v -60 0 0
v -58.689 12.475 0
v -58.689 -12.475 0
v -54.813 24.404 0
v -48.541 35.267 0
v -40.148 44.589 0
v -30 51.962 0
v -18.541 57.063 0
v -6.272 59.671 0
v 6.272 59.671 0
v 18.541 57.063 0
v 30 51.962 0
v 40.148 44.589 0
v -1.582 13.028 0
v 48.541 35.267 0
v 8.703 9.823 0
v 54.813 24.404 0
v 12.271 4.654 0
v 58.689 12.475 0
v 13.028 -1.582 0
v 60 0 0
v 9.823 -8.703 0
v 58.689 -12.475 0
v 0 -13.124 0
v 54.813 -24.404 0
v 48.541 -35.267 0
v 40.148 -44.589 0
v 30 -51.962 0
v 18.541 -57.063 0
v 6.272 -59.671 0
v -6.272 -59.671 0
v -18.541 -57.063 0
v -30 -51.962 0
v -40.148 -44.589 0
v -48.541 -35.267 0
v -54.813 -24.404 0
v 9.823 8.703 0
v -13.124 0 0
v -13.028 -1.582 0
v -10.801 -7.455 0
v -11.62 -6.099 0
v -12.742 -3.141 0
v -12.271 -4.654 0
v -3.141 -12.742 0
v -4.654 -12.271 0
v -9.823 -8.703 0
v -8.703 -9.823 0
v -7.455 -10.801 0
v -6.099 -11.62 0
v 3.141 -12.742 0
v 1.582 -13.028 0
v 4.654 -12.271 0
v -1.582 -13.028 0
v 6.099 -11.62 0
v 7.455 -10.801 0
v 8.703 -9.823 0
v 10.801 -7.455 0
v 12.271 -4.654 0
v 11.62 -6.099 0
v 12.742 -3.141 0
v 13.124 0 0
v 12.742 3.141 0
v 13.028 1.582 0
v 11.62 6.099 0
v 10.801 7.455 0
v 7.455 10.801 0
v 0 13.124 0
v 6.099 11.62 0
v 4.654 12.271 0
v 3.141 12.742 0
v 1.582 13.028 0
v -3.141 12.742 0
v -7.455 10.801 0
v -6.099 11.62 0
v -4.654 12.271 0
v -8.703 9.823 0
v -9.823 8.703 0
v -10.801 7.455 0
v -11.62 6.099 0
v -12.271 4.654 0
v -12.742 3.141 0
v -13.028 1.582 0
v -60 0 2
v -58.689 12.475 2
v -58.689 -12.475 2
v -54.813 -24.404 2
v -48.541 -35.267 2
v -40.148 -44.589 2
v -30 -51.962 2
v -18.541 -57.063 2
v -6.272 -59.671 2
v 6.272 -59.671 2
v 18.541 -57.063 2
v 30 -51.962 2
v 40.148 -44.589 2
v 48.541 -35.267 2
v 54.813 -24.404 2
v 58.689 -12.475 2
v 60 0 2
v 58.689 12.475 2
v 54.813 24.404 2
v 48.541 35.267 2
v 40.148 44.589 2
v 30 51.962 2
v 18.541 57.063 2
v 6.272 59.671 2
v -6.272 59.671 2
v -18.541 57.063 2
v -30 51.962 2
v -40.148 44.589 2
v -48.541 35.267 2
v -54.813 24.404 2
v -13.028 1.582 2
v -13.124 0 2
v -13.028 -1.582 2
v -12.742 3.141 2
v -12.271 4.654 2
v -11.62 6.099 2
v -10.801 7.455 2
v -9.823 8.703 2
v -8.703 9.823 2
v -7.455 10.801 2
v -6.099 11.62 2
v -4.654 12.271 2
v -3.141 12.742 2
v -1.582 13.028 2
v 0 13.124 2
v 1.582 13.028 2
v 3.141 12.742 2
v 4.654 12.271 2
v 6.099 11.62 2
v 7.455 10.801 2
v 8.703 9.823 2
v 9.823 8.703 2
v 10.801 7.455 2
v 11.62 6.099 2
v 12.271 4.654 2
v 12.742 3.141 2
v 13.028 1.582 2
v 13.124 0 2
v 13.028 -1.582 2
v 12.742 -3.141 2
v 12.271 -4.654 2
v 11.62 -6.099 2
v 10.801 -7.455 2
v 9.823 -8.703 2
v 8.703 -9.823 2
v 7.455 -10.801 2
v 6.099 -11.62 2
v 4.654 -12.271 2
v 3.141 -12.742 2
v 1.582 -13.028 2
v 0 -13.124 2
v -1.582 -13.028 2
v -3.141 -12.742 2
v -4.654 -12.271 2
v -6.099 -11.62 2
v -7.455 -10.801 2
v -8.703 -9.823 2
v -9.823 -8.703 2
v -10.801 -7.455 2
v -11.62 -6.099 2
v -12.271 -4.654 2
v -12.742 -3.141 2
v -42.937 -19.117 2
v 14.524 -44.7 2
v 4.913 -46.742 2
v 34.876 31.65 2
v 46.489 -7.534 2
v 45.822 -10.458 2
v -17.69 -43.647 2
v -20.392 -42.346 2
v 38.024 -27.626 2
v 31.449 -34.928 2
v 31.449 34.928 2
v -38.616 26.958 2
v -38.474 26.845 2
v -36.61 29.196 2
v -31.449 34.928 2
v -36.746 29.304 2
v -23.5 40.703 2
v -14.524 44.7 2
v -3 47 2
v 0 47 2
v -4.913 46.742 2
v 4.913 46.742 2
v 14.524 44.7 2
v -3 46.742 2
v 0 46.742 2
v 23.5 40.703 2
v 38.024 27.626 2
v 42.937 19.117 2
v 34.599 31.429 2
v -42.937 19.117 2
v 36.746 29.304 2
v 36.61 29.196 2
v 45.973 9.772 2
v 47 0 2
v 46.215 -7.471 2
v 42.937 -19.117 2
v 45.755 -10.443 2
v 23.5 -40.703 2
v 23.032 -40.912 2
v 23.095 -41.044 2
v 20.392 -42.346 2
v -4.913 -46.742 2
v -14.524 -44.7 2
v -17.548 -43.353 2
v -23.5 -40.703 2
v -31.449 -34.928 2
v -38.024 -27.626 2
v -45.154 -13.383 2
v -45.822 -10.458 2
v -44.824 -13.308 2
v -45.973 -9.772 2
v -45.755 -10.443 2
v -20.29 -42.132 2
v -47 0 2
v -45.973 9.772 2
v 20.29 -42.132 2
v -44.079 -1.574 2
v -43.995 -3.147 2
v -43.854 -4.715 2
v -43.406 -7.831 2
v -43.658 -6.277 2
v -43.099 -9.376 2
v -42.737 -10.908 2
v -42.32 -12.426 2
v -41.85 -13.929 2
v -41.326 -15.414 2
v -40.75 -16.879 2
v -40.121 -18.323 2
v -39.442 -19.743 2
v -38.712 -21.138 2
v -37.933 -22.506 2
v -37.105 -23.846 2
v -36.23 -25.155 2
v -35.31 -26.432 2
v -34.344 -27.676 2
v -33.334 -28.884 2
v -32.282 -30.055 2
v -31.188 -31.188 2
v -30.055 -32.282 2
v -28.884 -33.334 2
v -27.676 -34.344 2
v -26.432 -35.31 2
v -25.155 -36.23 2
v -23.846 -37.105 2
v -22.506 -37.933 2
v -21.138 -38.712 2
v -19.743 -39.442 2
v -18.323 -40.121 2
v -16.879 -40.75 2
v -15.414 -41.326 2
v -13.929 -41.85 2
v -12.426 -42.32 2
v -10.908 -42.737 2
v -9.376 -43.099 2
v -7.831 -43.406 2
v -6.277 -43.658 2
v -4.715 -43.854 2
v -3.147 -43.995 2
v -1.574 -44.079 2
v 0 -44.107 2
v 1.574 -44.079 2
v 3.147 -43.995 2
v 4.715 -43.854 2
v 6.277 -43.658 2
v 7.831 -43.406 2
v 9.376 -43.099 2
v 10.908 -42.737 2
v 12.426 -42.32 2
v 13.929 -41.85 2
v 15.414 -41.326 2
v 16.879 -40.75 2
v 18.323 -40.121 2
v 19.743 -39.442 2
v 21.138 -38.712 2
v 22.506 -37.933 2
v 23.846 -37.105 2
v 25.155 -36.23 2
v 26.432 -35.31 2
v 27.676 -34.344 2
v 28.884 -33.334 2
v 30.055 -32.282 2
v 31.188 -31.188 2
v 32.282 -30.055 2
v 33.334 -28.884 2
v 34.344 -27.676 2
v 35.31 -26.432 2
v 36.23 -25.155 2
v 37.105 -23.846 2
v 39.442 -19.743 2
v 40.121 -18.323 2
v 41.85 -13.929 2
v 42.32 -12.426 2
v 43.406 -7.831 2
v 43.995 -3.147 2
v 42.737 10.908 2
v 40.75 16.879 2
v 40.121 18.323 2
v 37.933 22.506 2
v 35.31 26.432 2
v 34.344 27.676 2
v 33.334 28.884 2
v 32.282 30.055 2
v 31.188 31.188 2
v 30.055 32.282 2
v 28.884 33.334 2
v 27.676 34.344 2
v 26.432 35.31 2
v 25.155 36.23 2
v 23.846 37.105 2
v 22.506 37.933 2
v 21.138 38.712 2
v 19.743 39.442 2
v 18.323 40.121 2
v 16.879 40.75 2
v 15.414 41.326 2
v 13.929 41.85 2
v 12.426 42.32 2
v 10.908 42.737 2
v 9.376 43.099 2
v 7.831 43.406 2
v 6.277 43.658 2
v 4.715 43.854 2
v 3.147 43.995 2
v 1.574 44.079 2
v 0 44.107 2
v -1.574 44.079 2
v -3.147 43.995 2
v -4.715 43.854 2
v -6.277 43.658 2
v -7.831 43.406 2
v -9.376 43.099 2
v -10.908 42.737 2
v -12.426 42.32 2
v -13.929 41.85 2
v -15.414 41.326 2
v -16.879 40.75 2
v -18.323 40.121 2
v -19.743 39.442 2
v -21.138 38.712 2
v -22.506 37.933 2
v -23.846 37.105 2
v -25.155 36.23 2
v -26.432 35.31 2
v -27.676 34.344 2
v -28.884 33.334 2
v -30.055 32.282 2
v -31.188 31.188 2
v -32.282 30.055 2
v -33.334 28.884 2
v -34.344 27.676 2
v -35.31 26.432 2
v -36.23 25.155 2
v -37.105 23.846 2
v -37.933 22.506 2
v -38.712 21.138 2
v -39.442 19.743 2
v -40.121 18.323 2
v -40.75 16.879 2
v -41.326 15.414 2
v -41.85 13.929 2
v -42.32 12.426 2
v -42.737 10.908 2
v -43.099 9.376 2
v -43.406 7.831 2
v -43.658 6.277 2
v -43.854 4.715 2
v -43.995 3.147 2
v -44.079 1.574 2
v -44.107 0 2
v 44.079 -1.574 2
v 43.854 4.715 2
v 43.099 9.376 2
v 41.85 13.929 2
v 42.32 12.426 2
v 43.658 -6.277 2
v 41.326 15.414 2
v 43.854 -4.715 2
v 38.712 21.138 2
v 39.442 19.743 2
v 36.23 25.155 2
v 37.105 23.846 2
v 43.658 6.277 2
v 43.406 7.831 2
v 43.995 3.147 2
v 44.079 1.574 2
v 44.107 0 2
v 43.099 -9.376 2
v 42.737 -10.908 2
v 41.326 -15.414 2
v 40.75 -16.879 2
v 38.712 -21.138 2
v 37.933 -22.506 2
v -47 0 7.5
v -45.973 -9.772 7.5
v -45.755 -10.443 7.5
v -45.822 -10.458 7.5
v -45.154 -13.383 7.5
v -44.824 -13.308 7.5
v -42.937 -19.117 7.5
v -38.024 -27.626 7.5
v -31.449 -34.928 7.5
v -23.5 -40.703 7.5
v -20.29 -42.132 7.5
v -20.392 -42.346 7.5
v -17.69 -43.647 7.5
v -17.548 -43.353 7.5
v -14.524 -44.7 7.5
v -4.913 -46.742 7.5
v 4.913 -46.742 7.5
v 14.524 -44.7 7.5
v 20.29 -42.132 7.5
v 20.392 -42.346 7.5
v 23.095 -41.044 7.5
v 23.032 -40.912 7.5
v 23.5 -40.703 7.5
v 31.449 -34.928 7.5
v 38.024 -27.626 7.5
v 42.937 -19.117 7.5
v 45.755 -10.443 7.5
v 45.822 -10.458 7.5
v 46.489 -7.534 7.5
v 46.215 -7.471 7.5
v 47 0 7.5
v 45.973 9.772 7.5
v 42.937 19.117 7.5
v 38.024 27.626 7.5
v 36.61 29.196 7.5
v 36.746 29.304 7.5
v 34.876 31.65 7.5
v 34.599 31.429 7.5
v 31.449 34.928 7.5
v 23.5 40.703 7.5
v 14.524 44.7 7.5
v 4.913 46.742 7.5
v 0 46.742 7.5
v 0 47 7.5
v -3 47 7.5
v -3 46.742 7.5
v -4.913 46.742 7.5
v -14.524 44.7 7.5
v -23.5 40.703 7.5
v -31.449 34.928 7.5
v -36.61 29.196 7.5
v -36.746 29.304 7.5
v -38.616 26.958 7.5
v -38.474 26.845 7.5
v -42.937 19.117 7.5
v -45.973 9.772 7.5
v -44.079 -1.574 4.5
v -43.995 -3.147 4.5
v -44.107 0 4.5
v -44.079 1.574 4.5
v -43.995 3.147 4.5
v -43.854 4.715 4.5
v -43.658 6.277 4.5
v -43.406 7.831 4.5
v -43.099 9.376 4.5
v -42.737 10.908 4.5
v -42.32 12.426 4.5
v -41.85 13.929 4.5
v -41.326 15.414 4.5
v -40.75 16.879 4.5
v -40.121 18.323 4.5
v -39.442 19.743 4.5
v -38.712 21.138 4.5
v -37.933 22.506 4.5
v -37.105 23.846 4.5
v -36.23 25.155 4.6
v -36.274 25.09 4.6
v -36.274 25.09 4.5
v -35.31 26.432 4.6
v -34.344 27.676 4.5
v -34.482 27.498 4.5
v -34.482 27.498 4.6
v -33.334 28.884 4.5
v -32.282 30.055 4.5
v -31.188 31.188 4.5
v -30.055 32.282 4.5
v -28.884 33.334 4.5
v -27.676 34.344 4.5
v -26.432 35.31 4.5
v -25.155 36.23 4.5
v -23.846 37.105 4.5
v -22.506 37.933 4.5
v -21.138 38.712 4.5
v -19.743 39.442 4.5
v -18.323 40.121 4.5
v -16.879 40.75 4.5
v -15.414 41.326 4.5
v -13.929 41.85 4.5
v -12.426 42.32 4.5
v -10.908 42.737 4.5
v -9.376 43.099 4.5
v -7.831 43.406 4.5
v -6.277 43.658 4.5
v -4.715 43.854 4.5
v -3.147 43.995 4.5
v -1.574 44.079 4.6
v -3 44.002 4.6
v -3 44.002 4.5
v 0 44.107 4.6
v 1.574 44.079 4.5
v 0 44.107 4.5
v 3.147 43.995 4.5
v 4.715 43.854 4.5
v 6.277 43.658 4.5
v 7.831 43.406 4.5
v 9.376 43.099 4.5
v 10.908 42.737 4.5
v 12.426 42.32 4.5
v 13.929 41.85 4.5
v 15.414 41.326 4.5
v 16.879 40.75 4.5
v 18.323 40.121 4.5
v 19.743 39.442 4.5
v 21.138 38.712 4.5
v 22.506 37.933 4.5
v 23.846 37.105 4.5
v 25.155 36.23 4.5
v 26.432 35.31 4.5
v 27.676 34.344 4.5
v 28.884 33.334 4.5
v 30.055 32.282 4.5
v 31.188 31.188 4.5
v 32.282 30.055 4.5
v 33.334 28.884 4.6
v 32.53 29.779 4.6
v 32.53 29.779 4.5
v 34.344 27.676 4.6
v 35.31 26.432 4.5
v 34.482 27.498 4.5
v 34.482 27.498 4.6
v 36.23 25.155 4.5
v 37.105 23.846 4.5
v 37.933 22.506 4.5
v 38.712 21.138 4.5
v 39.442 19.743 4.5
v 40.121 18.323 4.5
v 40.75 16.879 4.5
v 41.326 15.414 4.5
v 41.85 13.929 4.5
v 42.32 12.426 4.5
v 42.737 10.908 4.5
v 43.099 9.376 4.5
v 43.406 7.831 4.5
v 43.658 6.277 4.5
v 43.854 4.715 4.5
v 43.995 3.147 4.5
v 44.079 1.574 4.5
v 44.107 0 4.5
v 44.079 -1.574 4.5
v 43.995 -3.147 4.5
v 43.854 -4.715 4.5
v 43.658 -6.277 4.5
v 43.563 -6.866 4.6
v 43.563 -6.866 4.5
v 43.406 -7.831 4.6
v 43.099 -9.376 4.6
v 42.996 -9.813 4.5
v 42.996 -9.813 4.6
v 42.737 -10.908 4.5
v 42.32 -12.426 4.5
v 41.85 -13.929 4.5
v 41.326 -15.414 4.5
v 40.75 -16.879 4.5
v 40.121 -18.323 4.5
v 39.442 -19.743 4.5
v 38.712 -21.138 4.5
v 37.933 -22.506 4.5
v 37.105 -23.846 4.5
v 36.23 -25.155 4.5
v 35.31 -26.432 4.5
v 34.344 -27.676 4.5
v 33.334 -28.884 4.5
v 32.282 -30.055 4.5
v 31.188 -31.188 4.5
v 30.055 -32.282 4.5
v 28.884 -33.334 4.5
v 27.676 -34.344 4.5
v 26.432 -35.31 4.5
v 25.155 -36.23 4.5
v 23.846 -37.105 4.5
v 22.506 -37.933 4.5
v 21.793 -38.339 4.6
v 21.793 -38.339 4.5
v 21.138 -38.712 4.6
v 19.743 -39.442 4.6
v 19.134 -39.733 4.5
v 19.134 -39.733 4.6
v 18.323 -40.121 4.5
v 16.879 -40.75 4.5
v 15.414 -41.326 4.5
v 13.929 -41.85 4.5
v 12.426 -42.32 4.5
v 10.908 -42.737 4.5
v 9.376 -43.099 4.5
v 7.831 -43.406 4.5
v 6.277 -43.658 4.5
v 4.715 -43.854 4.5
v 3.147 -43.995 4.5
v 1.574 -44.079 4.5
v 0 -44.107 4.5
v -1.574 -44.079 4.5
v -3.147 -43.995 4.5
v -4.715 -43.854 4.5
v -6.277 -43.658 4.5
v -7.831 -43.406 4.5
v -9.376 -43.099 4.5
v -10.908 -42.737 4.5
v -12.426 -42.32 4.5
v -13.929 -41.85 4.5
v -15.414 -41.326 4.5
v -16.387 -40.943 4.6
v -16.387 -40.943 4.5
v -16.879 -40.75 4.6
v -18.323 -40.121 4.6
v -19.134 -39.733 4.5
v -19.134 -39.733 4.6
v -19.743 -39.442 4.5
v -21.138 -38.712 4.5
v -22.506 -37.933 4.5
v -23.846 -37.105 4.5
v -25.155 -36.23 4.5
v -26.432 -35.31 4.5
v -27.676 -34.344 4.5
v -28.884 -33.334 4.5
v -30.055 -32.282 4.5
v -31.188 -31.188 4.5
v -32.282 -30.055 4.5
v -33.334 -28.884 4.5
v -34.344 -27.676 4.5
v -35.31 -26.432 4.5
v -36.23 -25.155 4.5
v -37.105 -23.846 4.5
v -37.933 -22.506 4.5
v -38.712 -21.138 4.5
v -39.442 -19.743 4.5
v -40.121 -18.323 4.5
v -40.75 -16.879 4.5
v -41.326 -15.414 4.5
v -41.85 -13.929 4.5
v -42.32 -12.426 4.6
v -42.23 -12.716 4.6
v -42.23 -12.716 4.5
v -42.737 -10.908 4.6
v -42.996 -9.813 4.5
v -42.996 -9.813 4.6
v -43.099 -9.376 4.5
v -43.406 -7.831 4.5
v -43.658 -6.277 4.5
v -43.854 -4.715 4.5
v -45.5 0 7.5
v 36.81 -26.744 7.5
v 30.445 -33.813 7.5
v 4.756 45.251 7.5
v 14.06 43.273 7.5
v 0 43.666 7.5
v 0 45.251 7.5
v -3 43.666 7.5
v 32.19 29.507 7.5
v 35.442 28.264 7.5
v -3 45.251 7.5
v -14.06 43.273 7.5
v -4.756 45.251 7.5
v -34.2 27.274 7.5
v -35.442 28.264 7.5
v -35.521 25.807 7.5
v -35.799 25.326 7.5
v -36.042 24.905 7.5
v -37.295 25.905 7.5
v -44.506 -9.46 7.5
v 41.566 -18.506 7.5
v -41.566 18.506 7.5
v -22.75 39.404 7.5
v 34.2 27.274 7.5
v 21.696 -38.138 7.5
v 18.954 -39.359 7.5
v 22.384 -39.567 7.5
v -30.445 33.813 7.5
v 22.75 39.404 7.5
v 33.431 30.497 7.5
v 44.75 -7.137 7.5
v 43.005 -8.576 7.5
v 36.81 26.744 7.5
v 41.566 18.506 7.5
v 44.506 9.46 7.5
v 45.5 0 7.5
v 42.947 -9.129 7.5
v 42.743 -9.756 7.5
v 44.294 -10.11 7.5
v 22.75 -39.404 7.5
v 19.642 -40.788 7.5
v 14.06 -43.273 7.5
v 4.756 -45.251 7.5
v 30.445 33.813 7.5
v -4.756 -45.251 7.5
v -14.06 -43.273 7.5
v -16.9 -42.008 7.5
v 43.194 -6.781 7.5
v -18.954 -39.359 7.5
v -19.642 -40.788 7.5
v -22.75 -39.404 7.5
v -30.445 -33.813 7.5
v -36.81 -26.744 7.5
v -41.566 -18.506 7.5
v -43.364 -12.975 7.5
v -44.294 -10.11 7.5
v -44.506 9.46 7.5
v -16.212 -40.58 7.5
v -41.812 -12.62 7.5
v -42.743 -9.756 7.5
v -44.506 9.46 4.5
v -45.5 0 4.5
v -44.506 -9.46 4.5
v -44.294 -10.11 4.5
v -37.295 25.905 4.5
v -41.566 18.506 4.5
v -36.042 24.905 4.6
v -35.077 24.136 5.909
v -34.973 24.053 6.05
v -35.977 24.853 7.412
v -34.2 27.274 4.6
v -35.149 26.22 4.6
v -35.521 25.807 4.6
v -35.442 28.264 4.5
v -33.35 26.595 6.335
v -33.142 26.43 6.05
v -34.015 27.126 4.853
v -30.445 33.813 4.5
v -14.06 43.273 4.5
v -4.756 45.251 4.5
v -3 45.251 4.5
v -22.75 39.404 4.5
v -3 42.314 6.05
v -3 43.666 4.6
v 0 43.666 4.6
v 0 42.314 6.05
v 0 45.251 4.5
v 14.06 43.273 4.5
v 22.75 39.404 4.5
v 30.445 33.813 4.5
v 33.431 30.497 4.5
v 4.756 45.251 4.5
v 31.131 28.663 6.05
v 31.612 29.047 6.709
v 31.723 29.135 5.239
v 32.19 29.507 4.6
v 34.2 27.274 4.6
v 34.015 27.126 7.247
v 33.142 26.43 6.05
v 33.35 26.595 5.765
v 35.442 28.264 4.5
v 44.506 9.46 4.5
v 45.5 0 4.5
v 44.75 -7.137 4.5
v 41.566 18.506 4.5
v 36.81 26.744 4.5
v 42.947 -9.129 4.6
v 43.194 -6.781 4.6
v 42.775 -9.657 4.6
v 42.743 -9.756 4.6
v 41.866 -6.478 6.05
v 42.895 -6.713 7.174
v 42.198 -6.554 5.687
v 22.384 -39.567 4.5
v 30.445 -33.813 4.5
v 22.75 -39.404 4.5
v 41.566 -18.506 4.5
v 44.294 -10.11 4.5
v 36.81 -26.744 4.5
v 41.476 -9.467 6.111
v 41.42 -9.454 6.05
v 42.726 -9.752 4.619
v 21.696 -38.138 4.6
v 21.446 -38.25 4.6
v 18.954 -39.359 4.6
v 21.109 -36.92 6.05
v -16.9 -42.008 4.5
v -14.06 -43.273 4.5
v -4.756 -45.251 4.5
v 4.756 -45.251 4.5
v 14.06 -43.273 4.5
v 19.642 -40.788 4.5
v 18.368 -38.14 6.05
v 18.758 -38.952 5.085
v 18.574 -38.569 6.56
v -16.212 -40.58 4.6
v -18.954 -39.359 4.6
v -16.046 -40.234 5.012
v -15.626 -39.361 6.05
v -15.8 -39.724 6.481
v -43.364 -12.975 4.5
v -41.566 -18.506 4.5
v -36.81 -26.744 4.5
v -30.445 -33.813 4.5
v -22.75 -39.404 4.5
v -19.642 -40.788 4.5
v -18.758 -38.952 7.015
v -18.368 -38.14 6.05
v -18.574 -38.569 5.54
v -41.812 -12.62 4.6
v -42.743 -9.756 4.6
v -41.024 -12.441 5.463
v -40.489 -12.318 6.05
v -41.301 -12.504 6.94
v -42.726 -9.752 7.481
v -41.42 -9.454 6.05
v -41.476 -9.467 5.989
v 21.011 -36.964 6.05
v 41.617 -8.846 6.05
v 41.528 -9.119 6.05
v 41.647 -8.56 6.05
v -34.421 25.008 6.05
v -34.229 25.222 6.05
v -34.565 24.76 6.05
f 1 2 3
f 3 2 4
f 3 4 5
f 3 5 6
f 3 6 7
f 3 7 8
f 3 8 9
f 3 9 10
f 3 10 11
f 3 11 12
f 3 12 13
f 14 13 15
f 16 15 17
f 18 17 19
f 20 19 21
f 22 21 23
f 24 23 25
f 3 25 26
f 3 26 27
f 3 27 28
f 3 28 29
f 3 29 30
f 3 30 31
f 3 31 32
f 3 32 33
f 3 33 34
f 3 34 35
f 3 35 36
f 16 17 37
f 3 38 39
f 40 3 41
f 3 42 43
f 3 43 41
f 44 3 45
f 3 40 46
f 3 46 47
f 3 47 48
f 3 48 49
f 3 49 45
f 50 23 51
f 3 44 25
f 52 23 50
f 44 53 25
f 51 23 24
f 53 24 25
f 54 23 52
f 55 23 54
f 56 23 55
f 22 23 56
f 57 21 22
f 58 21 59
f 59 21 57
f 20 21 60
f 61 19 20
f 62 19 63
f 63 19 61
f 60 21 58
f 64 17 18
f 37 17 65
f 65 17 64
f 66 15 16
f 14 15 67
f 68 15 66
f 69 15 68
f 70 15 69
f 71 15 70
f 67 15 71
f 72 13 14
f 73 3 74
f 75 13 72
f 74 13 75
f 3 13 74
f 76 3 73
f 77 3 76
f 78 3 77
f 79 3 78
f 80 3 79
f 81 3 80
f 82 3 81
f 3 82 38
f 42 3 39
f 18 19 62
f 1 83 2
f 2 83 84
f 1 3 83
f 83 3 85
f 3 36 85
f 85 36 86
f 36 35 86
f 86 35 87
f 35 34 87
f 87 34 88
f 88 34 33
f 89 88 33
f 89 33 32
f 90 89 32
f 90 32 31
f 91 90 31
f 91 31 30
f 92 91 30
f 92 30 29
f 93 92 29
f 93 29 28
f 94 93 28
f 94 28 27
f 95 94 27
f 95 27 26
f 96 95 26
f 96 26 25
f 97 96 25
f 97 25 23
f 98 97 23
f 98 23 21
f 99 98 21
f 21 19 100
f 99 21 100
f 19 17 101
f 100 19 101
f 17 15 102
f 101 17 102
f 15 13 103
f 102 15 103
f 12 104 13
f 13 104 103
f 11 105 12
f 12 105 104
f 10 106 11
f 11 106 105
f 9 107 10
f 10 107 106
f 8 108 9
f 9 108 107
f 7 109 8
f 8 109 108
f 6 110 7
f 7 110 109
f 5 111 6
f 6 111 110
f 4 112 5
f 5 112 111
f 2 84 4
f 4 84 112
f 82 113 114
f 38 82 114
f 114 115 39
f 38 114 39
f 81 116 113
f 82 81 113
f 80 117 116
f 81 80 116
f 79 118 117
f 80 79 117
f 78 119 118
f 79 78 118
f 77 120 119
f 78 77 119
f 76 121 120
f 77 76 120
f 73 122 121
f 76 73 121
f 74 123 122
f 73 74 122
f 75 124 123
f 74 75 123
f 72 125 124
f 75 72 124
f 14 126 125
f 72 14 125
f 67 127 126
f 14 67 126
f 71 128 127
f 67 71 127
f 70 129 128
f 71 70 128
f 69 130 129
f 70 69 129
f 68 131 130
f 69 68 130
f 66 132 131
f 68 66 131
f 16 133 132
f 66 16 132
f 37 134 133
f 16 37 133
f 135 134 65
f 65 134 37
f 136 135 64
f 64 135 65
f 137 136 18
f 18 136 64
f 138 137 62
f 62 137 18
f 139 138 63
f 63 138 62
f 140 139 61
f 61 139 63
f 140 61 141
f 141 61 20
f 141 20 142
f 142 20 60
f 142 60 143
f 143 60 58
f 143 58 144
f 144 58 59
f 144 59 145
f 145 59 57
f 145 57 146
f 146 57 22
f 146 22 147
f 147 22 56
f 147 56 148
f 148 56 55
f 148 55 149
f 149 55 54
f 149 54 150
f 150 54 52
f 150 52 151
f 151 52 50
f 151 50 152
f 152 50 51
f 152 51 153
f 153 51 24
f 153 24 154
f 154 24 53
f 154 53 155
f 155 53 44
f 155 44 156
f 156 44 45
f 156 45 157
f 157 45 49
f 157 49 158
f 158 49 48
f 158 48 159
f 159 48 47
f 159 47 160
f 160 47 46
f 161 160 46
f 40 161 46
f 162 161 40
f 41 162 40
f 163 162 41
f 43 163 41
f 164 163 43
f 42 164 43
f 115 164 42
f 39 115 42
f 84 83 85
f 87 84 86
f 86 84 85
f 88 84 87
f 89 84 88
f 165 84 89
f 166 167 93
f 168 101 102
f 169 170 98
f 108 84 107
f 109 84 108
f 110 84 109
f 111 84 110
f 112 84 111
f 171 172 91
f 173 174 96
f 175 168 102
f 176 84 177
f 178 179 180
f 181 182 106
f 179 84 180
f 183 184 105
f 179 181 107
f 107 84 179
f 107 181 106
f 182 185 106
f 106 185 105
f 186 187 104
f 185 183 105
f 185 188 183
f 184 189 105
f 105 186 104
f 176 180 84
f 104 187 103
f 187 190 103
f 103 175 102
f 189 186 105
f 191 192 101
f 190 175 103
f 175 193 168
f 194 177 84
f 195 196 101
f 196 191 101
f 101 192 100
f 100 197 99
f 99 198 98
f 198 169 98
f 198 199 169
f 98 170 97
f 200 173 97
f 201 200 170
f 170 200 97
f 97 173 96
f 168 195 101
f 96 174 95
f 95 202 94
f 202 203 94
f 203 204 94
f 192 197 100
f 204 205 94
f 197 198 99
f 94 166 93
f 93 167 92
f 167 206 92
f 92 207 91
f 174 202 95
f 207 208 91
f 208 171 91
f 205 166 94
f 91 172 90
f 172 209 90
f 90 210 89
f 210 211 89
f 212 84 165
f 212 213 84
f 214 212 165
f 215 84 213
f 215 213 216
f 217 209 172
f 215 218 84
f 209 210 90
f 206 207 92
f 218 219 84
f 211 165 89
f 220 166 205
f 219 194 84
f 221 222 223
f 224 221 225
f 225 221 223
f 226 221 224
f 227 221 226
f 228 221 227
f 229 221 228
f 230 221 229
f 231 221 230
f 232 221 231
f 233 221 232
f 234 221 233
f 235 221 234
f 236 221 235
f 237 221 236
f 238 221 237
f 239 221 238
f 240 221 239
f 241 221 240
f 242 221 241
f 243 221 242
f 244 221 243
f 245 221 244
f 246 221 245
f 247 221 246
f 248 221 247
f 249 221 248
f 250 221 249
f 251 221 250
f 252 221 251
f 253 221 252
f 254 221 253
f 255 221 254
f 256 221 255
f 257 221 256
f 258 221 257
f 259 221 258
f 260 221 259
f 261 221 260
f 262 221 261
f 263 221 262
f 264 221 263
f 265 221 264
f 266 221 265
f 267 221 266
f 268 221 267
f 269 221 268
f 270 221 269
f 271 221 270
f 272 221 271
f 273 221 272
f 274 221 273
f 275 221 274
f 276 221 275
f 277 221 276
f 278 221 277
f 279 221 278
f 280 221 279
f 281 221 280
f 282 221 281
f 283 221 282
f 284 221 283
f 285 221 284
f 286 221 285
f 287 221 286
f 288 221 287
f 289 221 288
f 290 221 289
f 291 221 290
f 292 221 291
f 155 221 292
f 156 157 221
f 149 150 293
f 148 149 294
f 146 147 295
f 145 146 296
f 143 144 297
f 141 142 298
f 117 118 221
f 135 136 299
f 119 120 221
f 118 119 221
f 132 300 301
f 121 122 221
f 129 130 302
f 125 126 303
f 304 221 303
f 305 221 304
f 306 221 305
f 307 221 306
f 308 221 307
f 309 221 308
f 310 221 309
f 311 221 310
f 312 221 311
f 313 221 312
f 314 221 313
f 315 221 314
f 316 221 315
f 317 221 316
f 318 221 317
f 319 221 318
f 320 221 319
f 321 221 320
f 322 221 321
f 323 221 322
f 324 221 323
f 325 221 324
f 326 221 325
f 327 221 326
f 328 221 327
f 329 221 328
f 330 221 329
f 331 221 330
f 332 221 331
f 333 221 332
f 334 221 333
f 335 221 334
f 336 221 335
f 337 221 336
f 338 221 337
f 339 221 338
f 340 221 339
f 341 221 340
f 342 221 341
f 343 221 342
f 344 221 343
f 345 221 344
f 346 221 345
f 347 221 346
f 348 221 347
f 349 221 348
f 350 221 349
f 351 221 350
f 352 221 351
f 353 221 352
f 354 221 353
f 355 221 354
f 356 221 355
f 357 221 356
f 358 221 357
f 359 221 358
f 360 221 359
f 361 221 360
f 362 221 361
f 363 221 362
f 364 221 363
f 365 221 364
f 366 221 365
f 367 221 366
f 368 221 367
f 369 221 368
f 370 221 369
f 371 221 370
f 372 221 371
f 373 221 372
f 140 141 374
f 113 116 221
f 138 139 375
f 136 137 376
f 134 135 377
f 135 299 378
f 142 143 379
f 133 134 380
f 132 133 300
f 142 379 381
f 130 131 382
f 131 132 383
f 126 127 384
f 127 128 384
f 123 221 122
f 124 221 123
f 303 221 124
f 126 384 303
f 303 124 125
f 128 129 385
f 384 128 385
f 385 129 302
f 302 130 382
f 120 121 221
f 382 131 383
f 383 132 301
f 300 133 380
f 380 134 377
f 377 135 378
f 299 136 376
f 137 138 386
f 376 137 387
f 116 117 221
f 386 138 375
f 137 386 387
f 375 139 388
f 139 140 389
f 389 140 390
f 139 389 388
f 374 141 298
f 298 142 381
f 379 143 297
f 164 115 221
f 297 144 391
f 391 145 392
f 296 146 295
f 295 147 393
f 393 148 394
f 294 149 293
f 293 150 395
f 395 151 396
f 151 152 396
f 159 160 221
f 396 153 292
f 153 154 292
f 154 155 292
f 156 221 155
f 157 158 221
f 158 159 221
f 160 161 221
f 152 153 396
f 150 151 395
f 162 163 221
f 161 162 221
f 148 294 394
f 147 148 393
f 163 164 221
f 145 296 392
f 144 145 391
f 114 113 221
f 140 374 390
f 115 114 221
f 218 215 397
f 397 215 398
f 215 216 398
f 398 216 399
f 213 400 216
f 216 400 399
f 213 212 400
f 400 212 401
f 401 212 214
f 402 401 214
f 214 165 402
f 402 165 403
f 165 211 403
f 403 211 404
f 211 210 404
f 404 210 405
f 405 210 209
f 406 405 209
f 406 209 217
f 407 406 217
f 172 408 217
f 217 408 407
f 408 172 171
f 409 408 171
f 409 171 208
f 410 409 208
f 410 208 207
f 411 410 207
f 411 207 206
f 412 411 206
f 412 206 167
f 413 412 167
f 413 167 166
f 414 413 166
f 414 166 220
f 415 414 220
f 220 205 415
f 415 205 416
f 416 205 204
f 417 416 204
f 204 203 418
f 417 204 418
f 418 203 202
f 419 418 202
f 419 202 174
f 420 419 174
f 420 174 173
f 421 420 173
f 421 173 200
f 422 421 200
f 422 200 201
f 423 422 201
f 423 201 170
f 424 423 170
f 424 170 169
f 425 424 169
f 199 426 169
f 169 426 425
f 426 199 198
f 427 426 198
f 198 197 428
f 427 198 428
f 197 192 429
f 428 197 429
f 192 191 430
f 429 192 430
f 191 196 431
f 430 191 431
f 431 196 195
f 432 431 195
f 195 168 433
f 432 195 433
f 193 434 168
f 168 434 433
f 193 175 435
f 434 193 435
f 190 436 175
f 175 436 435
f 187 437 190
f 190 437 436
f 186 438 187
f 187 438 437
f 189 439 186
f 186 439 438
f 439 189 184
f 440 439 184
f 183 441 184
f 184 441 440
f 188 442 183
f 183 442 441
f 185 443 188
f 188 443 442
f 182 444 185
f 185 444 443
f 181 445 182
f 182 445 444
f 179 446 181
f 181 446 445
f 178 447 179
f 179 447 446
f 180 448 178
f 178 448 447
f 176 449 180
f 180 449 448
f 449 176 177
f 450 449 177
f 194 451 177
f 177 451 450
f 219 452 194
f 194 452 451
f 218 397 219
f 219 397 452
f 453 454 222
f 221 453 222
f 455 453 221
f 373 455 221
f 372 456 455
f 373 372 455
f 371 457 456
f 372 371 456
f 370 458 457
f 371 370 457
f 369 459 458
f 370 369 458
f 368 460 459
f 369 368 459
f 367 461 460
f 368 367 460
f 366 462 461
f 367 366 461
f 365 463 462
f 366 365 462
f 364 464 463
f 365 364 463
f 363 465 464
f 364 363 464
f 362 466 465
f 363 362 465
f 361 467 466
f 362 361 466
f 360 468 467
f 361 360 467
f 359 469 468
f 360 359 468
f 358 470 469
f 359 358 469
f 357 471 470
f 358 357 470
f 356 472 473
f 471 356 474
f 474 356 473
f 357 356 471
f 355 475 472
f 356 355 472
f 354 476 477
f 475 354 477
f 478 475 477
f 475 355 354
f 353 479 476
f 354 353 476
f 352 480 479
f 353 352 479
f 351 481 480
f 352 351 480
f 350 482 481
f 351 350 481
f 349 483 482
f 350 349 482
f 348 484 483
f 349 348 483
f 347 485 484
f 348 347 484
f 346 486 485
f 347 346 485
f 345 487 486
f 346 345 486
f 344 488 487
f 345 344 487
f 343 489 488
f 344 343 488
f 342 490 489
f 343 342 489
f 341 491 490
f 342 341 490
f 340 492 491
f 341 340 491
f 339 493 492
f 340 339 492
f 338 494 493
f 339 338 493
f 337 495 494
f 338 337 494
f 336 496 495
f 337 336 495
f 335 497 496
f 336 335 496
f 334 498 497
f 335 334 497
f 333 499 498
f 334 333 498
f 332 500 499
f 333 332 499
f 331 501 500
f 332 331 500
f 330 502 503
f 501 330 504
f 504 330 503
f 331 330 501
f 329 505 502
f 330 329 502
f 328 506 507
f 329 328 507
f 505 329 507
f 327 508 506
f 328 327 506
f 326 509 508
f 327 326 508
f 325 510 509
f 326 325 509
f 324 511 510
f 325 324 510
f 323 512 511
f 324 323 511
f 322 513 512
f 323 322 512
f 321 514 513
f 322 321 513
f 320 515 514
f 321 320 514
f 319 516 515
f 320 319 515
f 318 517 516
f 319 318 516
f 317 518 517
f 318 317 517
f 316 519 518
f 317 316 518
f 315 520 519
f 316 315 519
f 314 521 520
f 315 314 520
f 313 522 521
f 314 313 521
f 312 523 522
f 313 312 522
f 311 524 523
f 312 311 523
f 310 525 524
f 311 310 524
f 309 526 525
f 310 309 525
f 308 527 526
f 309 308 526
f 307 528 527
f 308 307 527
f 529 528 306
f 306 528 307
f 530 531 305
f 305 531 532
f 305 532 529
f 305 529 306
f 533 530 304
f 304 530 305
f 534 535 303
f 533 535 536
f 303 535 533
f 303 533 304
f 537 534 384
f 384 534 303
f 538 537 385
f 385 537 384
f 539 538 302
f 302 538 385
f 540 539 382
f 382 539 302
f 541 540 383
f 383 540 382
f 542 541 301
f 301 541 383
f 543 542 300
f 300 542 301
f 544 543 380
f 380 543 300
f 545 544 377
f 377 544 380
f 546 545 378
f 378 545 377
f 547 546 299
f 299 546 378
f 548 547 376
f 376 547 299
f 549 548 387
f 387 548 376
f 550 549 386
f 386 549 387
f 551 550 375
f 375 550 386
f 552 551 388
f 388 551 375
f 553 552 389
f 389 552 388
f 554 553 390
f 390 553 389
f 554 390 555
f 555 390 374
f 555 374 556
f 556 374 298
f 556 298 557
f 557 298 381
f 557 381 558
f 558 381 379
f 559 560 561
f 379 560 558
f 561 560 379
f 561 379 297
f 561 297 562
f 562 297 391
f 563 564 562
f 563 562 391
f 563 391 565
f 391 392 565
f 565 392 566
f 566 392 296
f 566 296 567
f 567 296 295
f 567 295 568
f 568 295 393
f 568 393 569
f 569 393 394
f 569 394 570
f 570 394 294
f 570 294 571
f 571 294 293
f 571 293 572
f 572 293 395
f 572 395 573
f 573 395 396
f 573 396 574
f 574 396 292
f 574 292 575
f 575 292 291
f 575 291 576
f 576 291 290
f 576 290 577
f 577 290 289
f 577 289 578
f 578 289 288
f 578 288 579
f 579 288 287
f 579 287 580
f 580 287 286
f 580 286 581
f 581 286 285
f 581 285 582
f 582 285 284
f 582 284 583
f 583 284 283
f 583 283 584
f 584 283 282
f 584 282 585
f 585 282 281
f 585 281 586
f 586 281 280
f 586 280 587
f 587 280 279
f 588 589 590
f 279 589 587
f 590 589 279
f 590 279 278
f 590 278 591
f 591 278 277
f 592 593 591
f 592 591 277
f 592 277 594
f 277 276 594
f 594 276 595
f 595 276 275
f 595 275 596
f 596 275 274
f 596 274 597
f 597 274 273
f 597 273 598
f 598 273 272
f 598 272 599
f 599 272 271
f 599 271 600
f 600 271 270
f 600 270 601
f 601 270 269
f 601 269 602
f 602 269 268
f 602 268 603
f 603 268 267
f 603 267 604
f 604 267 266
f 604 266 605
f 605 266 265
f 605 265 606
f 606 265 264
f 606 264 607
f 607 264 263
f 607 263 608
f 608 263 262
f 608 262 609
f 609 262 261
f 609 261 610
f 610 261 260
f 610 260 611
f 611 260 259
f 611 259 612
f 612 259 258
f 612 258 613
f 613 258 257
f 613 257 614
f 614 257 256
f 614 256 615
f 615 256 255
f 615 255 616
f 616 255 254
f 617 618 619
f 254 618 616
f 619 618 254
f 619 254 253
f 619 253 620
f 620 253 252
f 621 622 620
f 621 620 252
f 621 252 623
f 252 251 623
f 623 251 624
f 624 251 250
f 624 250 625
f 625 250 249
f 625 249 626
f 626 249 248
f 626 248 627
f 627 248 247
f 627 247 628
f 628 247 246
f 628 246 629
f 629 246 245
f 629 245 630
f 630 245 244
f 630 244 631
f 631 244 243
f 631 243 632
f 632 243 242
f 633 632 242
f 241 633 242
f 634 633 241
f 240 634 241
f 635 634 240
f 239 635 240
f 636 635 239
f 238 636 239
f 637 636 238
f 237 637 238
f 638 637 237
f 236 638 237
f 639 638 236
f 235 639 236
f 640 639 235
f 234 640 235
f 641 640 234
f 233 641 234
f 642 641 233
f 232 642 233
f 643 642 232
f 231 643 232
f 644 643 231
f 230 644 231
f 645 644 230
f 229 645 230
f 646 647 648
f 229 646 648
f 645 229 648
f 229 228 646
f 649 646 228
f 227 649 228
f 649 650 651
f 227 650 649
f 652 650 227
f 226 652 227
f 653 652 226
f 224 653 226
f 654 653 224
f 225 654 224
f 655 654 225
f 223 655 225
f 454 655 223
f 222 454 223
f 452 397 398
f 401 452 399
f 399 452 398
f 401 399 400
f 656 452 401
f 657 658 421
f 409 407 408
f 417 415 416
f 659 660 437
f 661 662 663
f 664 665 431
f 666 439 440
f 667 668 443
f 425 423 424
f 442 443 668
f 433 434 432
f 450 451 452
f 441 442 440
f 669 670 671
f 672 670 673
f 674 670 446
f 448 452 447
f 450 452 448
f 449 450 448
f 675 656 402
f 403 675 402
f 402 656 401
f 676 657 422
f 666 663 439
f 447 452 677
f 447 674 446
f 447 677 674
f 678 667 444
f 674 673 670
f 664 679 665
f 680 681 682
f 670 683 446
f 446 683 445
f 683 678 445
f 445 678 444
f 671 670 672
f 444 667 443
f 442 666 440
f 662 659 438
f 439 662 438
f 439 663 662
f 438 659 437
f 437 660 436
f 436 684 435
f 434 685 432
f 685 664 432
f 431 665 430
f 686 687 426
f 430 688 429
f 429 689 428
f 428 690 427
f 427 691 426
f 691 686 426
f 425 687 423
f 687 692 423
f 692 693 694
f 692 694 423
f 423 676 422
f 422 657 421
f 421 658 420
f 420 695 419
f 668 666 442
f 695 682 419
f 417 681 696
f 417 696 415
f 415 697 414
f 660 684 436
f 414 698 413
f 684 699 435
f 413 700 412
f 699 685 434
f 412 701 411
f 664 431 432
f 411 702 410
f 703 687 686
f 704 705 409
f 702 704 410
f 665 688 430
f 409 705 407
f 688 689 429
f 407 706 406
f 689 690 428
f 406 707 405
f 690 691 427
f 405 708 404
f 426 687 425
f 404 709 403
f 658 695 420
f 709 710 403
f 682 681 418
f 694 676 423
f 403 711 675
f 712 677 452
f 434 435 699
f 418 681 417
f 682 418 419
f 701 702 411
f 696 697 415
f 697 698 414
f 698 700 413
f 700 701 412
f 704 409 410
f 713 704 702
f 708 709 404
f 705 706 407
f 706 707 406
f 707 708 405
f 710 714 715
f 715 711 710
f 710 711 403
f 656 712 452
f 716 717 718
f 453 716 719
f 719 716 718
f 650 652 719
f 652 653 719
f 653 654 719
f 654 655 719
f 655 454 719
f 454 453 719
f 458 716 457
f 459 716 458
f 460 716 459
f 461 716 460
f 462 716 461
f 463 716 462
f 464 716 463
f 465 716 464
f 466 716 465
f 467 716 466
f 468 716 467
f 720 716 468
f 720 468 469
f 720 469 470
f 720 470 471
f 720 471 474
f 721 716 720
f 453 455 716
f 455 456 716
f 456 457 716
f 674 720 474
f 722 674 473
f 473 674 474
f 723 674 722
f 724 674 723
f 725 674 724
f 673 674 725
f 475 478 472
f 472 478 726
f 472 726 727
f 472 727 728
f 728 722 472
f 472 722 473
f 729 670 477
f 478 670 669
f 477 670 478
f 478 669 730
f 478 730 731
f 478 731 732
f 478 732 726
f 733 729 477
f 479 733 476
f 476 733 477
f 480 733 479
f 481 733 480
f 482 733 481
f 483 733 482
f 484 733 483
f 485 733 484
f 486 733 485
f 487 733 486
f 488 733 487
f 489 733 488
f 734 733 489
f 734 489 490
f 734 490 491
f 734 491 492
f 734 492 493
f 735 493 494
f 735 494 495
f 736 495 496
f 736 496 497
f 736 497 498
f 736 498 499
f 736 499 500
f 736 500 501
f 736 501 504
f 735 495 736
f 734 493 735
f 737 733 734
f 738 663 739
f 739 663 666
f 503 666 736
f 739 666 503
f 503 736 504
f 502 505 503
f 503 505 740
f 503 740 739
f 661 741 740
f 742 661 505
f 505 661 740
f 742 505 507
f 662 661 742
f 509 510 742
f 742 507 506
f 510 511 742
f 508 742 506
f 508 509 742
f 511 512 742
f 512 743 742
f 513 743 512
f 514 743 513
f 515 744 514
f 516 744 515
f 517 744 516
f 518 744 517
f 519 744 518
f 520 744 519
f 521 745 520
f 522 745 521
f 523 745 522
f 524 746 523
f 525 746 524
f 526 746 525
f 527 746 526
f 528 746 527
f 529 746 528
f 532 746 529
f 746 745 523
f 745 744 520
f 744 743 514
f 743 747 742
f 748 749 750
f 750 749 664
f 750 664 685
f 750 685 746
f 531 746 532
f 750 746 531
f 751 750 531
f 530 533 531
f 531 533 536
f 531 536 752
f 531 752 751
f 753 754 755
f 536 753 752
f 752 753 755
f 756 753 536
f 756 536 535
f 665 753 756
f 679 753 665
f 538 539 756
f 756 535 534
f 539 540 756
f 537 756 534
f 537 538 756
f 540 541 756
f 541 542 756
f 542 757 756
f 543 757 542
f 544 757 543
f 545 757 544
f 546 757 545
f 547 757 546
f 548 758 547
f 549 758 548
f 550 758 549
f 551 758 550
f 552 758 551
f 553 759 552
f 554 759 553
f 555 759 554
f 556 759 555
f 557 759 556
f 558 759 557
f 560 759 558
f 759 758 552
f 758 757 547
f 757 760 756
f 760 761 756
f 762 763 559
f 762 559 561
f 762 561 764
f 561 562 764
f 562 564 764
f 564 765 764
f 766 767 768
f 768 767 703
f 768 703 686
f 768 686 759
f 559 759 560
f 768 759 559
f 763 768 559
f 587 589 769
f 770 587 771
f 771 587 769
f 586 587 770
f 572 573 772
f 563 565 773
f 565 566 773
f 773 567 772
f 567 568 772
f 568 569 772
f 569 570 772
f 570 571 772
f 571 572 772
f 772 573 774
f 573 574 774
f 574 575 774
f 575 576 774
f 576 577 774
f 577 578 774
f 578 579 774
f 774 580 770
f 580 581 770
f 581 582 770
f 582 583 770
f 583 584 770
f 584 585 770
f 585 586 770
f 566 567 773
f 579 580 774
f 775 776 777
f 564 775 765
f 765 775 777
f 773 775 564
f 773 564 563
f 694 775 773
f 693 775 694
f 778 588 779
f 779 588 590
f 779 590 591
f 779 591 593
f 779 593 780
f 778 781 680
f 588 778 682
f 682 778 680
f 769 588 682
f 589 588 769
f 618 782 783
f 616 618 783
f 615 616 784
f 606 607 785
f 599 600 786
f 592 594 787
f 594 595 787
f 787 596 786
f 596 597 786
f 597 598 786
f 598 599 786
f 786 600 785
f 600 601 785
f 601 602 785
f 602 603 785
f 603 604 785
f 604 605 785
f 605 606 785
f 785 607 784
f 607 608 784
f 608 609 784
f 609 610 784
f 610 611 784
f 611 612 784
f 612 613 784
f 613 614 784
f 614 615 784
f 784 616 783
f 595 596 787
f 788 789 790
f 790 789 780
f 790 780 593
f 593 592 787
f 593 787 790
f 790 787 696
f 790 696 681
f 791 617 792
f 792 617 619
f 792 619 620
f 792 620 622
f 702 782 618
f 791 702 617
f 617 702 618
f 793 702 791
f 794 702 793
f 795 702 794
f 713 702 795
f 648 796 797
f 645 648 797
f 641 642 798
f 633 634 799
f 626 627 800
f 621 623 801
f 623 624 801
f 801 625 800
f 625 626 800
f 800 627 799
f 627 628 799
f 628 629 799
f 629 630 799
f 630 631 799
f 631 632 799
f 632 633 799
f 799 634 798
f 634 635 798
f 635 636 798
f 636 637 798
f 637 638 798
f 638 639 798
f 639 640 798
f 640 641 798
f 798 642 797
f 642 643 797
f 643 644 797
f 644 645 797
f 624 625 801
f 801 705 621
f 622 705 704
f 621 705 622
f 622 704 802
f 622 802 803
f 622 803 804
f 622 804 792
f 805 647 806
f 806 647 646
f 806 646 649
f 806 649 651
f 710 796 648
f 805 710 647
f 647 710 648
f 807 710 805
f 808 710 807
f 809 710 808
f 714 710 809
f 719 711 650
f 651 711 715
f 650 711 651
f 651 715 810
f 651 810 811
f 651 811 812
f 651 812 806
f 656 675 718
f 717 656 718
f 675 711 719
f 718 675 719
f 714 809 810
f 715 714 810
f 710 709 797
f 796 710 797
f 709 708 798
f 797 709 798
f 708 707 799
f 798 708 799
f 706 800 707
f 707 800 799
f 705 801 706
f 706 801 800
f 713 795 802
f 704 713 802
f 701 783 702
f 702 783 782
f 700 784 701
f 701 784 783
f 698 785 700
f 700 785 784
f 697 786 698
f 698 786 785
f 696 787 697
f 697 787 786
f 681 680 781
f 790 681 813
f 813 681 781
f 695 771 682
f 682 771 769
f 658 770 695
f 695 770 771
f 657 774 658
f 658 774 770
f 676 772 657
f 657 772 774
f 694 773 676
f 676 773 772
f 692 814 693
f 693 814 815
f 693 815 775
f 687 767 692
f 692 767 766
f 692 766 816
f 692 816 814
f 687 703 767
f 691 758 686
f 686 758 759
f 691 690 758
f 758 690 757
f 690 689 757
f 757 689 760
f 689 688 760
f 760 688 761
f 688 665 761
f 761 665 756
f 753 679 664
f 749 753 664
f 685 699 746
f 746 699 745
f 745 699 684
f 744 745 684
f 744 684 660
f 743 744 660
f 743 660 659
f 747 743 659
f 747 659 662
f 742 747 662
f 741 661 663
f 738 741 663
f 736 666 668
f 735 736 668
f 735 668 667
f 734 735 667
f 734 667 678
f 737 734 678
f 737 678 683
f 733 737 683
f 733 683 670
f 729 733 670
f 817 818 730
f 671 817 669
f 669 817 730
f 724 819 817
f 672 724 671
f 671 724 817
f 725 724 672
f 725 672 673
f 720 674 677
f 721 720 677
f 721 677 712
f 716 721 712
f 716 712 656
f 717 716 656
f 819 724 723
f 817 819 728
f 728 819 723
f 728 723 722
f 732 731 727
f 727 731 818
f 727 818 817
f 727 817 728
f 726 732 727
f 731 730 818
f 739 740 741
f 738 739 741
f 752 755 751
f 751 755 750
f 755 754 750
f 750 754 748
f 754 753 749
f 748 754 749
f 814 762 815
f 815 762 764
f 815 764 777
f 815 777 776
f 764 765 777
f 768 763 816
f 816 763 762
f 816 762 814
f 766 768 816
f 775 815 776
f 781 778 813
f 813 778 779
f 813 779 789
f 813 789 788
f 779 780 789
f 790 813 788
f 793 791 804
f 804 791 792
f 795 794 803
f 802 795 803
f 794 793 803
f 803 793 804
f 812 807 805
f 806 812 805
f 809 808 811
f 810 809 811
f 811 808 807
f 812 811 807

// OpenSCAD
// file: Magpie/scad/functions.scad
include <hardware_dims.scad>

// Assign Screw array
function getScrewDims(screw) = (screw=="M2") ? m2 : (screw=="M2.5") ? m2_5 : (screw=="M3") ? m3 : (screw=="M4") ? m4 : (screw=="M5") ? m5 : (screw=="M6") ? m6 : (screw=="M8") ? m8 : "error";

function get_screw_dims(screw) = getScrewDims(screw);

function getStepperDims(motor) = (motor=="NEMA8") ? nema8 : (motor=="NEMA11") ? nema11 : (motor=="NEMA14") ? nema14 : (motor=="NEMA17") ? nema17 : (motor=="Pololu 35x26") ? pololu35x26 :"error";

function get_stepper_dims(motor) = getStepperDims(motor);

function getElectronicsHoles(electronics) = (electronics=="Melzi") ? melzi : (electronics=="Mega") ? mega : (electronics=="Printrboard") ? printrboard : (electronics=="Sanguinololu") ? sanguinololu :"error";

function get_electronics_holes(electronics) = getElectronicsHoles(electronics);

function getExtruderGearDims(extruderGear) = (extruderGear=="Arcol8x5") ? arcol8x5 : (extruderGear=="Arcol11x8") ? arcol11x8 : (extruderGear=="Arcol11x5") ? arcol11x5 : (extruderGear=="Arcol13x8") ? arcol13x8 : "error";

function get_extruder_gear_dims(extruderGear) = getExtruderGearDims(extruderGear);
// file: Magpie/scad/hardware_dims.scad
//Screw Dimension arrays
//[Diameter, Cap Head Height, Head Diameter, nut across flats, lock nut height, nut height, washer od, washer thick, pan head diameter]
m2 = [2, 2, 3.8, 4, 2.8, 1.6, 5, 0.3, 4];
m2_5 = [2.5, 2.5, 4.5, 5, 3.8, 2, 6, 0.5, 5];
m3 = [3, 3, 5.5, 5.5, 4, 2.4, 7, 0.6, 6];
m4 = [4, 4, 7, 7, 5, 3.2, 9, 0.9, 8];
m5 = [5, 5, 8.5, 8, 5, 4, 10, 1.1, 10];
m6 = [6, 6, 10, 10, 6, 5, 12.5, 1.8, 12];
m8 = [8, 8, 13, 13, 8, 6.5, 17, 1.8, 16];

//stepper dimension arrays
//[width, length, hole spacing, hole diameter, flange diameter, flange height, shaft length, shaft diameter]
nema8 = [20.3, 30, 16, 2, 15, 1.5, 14, 4];
nema11 = [28.1, 27, 23, 2.5, 21, 2, 20, 5];
nema14 = [35.2, 36, 26, 3, 22, 2, 21, 5];
nema17 = [42.3, 48, 31, 3, 22, 2, 23, 5];
pololu35x26 = [35.2, 26, 26, 3, 22, 2, 21, 5];

//electronics dimension arrays
//[[x,y,z],etc..]
melzi = [[0,0,0],[200,0,0],[0,42,0],[200,42,0]];
mega = [[0,0,0],[80,0,0],[1.3,48.3,0],[76.2,48.3,0]];//TODO: second entry needs fixing
printrboard = [[0,0,0],[91,0,0],[0,52.75,0],[91,52.75,0]];
sanguinololu = [[0,0,0],[94,0,0],[0,44,0],[94,44,0]];

//extruder drive gear dimensions arrays
//[outer diameter, length, inner diameter, hobb diameter, teeth diameter(torus inside to inside), teeth offset(from bottom)]
arcol8x5 = [8,13,5,5,6,5];
arcol11x5 = [11.1,13,5,5,9.1,6];
arcol11x8 = [11.1,13,8,5,9.1,6];
arcol13x8 = [13.3,13,8,5,11.3,6];
// file: Magpie/scad/constants.scad
//constants
pi = 3.14159;
phi = 1.618;
eta = 0.1; //used to eliminate coincident faces
// file: Magpie/scad/components.scad
include <hardware_dims.scad>
include <polyholes.scad>
include <constants.scad>

$fn = 21;
//make the local screw array a function


module nut(type){
	lscrew_array = get_screw_dims(type);

	lscrew_diameter = lscrew_array[0];
	lnut_diameter = lscrew_array[3] / cos(30);
	lnut_height = lscrew_array[5];
	difference(type){
		union(){
			color("silver")cylinder(r = lnut_diameter/2, h = lnut_height, $fn = 6);
		}
		color("silver")translate([0,0,-eta])cylinder(r = lscrew_diameter/2, h = lnut_height + eta*2);
	}
	echo(str("--", type," nut")); 
}

module lock_nut(type){
	lscrew_array = get_screw_dims(type);

	lscrew_diameter = lscrew_array[0];
	lnut_diameter = lscrew_array[3] / cos(30);
	lnut_apothem = lscrew_array[3] / 2;
	llock_nut_height = lscrew_array[4];

	difference(){
		union(){
			color("silver")cylinder(r = lnut_diameter/2, h = llock_nut_height-lnut_apothem/2, $fn = 6);
			color("silver")translate([0,0,llock_nut_height-lnut_apothem/2])
				rotate_extrude(convexity = 10)translate([lnut_apothem/2,0,0])circle(r = lnut_apothem/2);
		}
		color("silver")translate([0,0,-eta])cylinder(r=lscrew_diameter/2, h = llock_nut_height + eta*2);
	}
	echo(str("--", type," lock nut")); 
}

module stepper(type){
	lstepper_array = get_stepper_dims(type);
	lstepper_width = lstepper_array[0];
	lstepper_length = lstepper_array[1];
	lstepper_hole_spacing = lstepper_array[2];
	lstepper_hole_diameter = lstepper_array[3];
	lstepper_flange_diameter = lstepper_array[4];
	lstepper_flange_height = lstepper_array[5];
	lstepper_shaft_length = lstepper_array[6];
	lstepper_shaft_diameter = lstepper_array[7];
	lstepper_hole_engagement = lstepper_hole_diameter *1.5;

		union(){
			color("grey")translate([0,0,lstepper_length/2])cube([lstepper_width, lstepper_width, lstepper_length], center = true);
			color("grey")translate([0,0,lstepper_length])cylinder(r=lstepper_flange_diameter/2, h = lstepper_flange_height);
			color("silver")translate([0,0,lstepper_length+lstepper_flange_height])cylinder(r=lstepper_shaft_diameter/2, h = lstepper_shaft_length);
		}
	echo(str("--", type," stepper")); 
}

module screw(length, type){
	lscrew_array = get_screw_dims(type);

	lscrew_diameter = lscrew_array[0];
	lscrew_head_height = lscrew_array[1];
	lscrew_head_diameter = lscrew_array[2];
	

	difference(){
		union(){
			color("grey")translate([0,0,-lscrew_head_height])color("black")
				cylinder(r = lscrew_head_diameter/2, h = lscrew_head_height);
			color("grey")cylinder(r = lscrew_diameter/2, h = round(length));
			
		}
		//make a socket for aesthetics
		color("grey")translate([0,0,-lscrew_head_height-eta])
			color("black")cylinder(r = lscrew_head_diameter/4, h = lscrew_head_height * 3/4, $fn = 6);
	}
	echo(str("--", type, "x", round(length))); 
}

module set_screw(length, type){
	lscrew_array = get_screw_dims(type);

	lscrew_diameter = lscrew_array[0];
	lscrew_head_height = lscrew_array[1];
	lscrew_head_diameter = lscrew_array[2];
	
	difference(){
		union(){
			color("grey")cylinder(r = lscrew_diameter/2, h = round(length));
			
		}
		//make a socket for aesthetics
		color("grey")translate([0,0,-eta])
			cylinder(r = lscrew_head_diameter/5, h = lscrew_head_height * 3/4, $fn = 6);
	}
	echo(str("--", type, "x", round(length), " set screw")); 
}

module washer(type){
	lscrew_array = get_screw_dims(type);

	lscrew_diameter = lscrew_array[0];
	lwasher_diameter = lscrew_array[6];
	lwasher_thick = lscrew_array[7];

	difference(){
		union(){
			color("silver")cylinder(r = lwasher_diameter/2, h = lwasher_thick);
		}
		color("silver")translate([0,0,-eta])cylinder(r = lscrew_diameter/2, h = lwasher_thick + eta * 2);
	}
	echo(str("--", type," washer")); 
}

module all_thread(length, type){
	lscrew_array = get_screw_dims(type);

	lscrew_diameter = lscrew_array[0];

	//don't round up on leadscrew
	difference(){
		union(){
			color("grey")cylinder(r = lscrew_diameter/2, h = round(length));
		}
	}
	echo(str("--", type, "x", round(length), "mm threaded rod")); 
}

module extruder_gear(type){
	lextruder_gear_array = get_extruder_gear_dims(type);

	
	lextruder_gear_od = lextruder_gear_array[0];
	lextruder_gear_id = lextruder_gear_array[1];
	lextruder_gear_hobb_diameter = lextruder_gear_array[2];
	lextruder_gear_teeth_diameter = lextruder_gear_array[3];
	lextruder_gear_teeth_offset = lextruder_gear_array[4];
	lextruder_gear_height = lextruder_gear_array[5];

	color("silver")difference(){
		color("silver")union(){
			translate([0,0,-lextruder_gear_teeth_offset])cylinder(r=lextruder_gear_od/2, h=lextruder_gear_height);
		}
		translate([0,0,-eta-lextruder_gear_teeth_offset])cylinder(r=lextruder_gear_id/2, h=lextruder_gear_height+eta*2);
		rotate_extrude(convexity = 10)translate([lextruder_gear_hobb_diameter/2+lextruder_gear_teeth_diameter/2,0,0])circle(r = lextruder_gear_teeth_diameter/2);
	}
	echo(str("--", type, " hobbed extruder drive gear")); 
}

module ptfe_rod(radius,length){
	difference(){
		union(){
			color("white")cylinder(r = radius, h = round(length));
		}
	}
	echo(str("--",radius*2,"mm diameter ", round(length), "mm long PTFE rod")); 
}
// file: Magpie/scad/polyholes.scad
//
// Mendel90
//
// GNU GPL v2
// nop.head@gmail.com
// hydraraptor.blogspot.com
//
// See http://hydraraptor.blogspot.com/2011/02/polyholes.html
//
function sides(r) = max(round(4 *r),3);
function correctedRadius(r,n) = 0.1 + r / cos(180 / n);
function correctedDiameter(d) = 0.2 + d / cos(180 / sides(d / 2));

module polyCircle(r, center = false) {
    n = sides(r);
    circle(r = correctedRadius(r,n), $fn = n, center = center);
}

module polyCylinder(r, h, center = false) {
    n = sides(r);
    cylinder(h = h, r = correctedRadius(r,n), $fn = n, center = center);
}

module polydCylinder(r, center = false) {
    n = sides(r);
    r = correctedRadius(r,n);
    cylinder(h = h, r = r, $fn = n, center = center);
    translate([0, -r, 0])
        cube([r, 2 * r, h]);
}
// file: Magpie/magpie.scad
//Use all the things
use <./scad/polyholes.scad>
use <./scad/components.scad>
include <./scad/constants.scad>
include <./scad/hardware_dims.scad>
include <./scad/functions.scad>
// main file
include <Magpie/magpie.scad>;

module spool_cap(outer_diameter=120, inner_diameter=88, hole_diameter=26, end_thickness=2.5, thickness=2, wall=3, clips = 7){
	difference(){
		union(){
			cylinder(r=outer_diameter/2, h=thickness);
			cylinder(r=inner_diameter/2+wall, h=thickness+end_thickness);
			for(i=[0:clips]){
				rotate([0,0,360*i/clips])translate([-wall,inner_diameter/2-wall,0])cube([wall,wall*2,thickness+end_thickness+wall]);
			}
			difference(){
				cylinder(r=inner_diameter/2+wall, h=thickness+end_thickness+wall);
				cylinder(r=inner_diameter/2+wall/2, h=thickness+end_thickness+wall+eta);
			}
		}	
		translate([0,0,thickness])polyCylinder(r=inner_diameter/2,h=end_thickness+eta);
		translate([0,0,-eta])polyCylinder(r=hole_diameter/2,h=thickness+eta*2);
		translate([0,0,thickness+end_thickness])cylinder(r1=inner_diameter/2, r2=inner_diameter/2-wall/2,h=wall/2+eta);
		translate([0,0,thickness+end_thickness+wall/2])cylinder(r2=inner_diameter/2, r1=inner_diameter/2-wall/2,h=wall/2+eta);
	}
} 

spool_cap();
